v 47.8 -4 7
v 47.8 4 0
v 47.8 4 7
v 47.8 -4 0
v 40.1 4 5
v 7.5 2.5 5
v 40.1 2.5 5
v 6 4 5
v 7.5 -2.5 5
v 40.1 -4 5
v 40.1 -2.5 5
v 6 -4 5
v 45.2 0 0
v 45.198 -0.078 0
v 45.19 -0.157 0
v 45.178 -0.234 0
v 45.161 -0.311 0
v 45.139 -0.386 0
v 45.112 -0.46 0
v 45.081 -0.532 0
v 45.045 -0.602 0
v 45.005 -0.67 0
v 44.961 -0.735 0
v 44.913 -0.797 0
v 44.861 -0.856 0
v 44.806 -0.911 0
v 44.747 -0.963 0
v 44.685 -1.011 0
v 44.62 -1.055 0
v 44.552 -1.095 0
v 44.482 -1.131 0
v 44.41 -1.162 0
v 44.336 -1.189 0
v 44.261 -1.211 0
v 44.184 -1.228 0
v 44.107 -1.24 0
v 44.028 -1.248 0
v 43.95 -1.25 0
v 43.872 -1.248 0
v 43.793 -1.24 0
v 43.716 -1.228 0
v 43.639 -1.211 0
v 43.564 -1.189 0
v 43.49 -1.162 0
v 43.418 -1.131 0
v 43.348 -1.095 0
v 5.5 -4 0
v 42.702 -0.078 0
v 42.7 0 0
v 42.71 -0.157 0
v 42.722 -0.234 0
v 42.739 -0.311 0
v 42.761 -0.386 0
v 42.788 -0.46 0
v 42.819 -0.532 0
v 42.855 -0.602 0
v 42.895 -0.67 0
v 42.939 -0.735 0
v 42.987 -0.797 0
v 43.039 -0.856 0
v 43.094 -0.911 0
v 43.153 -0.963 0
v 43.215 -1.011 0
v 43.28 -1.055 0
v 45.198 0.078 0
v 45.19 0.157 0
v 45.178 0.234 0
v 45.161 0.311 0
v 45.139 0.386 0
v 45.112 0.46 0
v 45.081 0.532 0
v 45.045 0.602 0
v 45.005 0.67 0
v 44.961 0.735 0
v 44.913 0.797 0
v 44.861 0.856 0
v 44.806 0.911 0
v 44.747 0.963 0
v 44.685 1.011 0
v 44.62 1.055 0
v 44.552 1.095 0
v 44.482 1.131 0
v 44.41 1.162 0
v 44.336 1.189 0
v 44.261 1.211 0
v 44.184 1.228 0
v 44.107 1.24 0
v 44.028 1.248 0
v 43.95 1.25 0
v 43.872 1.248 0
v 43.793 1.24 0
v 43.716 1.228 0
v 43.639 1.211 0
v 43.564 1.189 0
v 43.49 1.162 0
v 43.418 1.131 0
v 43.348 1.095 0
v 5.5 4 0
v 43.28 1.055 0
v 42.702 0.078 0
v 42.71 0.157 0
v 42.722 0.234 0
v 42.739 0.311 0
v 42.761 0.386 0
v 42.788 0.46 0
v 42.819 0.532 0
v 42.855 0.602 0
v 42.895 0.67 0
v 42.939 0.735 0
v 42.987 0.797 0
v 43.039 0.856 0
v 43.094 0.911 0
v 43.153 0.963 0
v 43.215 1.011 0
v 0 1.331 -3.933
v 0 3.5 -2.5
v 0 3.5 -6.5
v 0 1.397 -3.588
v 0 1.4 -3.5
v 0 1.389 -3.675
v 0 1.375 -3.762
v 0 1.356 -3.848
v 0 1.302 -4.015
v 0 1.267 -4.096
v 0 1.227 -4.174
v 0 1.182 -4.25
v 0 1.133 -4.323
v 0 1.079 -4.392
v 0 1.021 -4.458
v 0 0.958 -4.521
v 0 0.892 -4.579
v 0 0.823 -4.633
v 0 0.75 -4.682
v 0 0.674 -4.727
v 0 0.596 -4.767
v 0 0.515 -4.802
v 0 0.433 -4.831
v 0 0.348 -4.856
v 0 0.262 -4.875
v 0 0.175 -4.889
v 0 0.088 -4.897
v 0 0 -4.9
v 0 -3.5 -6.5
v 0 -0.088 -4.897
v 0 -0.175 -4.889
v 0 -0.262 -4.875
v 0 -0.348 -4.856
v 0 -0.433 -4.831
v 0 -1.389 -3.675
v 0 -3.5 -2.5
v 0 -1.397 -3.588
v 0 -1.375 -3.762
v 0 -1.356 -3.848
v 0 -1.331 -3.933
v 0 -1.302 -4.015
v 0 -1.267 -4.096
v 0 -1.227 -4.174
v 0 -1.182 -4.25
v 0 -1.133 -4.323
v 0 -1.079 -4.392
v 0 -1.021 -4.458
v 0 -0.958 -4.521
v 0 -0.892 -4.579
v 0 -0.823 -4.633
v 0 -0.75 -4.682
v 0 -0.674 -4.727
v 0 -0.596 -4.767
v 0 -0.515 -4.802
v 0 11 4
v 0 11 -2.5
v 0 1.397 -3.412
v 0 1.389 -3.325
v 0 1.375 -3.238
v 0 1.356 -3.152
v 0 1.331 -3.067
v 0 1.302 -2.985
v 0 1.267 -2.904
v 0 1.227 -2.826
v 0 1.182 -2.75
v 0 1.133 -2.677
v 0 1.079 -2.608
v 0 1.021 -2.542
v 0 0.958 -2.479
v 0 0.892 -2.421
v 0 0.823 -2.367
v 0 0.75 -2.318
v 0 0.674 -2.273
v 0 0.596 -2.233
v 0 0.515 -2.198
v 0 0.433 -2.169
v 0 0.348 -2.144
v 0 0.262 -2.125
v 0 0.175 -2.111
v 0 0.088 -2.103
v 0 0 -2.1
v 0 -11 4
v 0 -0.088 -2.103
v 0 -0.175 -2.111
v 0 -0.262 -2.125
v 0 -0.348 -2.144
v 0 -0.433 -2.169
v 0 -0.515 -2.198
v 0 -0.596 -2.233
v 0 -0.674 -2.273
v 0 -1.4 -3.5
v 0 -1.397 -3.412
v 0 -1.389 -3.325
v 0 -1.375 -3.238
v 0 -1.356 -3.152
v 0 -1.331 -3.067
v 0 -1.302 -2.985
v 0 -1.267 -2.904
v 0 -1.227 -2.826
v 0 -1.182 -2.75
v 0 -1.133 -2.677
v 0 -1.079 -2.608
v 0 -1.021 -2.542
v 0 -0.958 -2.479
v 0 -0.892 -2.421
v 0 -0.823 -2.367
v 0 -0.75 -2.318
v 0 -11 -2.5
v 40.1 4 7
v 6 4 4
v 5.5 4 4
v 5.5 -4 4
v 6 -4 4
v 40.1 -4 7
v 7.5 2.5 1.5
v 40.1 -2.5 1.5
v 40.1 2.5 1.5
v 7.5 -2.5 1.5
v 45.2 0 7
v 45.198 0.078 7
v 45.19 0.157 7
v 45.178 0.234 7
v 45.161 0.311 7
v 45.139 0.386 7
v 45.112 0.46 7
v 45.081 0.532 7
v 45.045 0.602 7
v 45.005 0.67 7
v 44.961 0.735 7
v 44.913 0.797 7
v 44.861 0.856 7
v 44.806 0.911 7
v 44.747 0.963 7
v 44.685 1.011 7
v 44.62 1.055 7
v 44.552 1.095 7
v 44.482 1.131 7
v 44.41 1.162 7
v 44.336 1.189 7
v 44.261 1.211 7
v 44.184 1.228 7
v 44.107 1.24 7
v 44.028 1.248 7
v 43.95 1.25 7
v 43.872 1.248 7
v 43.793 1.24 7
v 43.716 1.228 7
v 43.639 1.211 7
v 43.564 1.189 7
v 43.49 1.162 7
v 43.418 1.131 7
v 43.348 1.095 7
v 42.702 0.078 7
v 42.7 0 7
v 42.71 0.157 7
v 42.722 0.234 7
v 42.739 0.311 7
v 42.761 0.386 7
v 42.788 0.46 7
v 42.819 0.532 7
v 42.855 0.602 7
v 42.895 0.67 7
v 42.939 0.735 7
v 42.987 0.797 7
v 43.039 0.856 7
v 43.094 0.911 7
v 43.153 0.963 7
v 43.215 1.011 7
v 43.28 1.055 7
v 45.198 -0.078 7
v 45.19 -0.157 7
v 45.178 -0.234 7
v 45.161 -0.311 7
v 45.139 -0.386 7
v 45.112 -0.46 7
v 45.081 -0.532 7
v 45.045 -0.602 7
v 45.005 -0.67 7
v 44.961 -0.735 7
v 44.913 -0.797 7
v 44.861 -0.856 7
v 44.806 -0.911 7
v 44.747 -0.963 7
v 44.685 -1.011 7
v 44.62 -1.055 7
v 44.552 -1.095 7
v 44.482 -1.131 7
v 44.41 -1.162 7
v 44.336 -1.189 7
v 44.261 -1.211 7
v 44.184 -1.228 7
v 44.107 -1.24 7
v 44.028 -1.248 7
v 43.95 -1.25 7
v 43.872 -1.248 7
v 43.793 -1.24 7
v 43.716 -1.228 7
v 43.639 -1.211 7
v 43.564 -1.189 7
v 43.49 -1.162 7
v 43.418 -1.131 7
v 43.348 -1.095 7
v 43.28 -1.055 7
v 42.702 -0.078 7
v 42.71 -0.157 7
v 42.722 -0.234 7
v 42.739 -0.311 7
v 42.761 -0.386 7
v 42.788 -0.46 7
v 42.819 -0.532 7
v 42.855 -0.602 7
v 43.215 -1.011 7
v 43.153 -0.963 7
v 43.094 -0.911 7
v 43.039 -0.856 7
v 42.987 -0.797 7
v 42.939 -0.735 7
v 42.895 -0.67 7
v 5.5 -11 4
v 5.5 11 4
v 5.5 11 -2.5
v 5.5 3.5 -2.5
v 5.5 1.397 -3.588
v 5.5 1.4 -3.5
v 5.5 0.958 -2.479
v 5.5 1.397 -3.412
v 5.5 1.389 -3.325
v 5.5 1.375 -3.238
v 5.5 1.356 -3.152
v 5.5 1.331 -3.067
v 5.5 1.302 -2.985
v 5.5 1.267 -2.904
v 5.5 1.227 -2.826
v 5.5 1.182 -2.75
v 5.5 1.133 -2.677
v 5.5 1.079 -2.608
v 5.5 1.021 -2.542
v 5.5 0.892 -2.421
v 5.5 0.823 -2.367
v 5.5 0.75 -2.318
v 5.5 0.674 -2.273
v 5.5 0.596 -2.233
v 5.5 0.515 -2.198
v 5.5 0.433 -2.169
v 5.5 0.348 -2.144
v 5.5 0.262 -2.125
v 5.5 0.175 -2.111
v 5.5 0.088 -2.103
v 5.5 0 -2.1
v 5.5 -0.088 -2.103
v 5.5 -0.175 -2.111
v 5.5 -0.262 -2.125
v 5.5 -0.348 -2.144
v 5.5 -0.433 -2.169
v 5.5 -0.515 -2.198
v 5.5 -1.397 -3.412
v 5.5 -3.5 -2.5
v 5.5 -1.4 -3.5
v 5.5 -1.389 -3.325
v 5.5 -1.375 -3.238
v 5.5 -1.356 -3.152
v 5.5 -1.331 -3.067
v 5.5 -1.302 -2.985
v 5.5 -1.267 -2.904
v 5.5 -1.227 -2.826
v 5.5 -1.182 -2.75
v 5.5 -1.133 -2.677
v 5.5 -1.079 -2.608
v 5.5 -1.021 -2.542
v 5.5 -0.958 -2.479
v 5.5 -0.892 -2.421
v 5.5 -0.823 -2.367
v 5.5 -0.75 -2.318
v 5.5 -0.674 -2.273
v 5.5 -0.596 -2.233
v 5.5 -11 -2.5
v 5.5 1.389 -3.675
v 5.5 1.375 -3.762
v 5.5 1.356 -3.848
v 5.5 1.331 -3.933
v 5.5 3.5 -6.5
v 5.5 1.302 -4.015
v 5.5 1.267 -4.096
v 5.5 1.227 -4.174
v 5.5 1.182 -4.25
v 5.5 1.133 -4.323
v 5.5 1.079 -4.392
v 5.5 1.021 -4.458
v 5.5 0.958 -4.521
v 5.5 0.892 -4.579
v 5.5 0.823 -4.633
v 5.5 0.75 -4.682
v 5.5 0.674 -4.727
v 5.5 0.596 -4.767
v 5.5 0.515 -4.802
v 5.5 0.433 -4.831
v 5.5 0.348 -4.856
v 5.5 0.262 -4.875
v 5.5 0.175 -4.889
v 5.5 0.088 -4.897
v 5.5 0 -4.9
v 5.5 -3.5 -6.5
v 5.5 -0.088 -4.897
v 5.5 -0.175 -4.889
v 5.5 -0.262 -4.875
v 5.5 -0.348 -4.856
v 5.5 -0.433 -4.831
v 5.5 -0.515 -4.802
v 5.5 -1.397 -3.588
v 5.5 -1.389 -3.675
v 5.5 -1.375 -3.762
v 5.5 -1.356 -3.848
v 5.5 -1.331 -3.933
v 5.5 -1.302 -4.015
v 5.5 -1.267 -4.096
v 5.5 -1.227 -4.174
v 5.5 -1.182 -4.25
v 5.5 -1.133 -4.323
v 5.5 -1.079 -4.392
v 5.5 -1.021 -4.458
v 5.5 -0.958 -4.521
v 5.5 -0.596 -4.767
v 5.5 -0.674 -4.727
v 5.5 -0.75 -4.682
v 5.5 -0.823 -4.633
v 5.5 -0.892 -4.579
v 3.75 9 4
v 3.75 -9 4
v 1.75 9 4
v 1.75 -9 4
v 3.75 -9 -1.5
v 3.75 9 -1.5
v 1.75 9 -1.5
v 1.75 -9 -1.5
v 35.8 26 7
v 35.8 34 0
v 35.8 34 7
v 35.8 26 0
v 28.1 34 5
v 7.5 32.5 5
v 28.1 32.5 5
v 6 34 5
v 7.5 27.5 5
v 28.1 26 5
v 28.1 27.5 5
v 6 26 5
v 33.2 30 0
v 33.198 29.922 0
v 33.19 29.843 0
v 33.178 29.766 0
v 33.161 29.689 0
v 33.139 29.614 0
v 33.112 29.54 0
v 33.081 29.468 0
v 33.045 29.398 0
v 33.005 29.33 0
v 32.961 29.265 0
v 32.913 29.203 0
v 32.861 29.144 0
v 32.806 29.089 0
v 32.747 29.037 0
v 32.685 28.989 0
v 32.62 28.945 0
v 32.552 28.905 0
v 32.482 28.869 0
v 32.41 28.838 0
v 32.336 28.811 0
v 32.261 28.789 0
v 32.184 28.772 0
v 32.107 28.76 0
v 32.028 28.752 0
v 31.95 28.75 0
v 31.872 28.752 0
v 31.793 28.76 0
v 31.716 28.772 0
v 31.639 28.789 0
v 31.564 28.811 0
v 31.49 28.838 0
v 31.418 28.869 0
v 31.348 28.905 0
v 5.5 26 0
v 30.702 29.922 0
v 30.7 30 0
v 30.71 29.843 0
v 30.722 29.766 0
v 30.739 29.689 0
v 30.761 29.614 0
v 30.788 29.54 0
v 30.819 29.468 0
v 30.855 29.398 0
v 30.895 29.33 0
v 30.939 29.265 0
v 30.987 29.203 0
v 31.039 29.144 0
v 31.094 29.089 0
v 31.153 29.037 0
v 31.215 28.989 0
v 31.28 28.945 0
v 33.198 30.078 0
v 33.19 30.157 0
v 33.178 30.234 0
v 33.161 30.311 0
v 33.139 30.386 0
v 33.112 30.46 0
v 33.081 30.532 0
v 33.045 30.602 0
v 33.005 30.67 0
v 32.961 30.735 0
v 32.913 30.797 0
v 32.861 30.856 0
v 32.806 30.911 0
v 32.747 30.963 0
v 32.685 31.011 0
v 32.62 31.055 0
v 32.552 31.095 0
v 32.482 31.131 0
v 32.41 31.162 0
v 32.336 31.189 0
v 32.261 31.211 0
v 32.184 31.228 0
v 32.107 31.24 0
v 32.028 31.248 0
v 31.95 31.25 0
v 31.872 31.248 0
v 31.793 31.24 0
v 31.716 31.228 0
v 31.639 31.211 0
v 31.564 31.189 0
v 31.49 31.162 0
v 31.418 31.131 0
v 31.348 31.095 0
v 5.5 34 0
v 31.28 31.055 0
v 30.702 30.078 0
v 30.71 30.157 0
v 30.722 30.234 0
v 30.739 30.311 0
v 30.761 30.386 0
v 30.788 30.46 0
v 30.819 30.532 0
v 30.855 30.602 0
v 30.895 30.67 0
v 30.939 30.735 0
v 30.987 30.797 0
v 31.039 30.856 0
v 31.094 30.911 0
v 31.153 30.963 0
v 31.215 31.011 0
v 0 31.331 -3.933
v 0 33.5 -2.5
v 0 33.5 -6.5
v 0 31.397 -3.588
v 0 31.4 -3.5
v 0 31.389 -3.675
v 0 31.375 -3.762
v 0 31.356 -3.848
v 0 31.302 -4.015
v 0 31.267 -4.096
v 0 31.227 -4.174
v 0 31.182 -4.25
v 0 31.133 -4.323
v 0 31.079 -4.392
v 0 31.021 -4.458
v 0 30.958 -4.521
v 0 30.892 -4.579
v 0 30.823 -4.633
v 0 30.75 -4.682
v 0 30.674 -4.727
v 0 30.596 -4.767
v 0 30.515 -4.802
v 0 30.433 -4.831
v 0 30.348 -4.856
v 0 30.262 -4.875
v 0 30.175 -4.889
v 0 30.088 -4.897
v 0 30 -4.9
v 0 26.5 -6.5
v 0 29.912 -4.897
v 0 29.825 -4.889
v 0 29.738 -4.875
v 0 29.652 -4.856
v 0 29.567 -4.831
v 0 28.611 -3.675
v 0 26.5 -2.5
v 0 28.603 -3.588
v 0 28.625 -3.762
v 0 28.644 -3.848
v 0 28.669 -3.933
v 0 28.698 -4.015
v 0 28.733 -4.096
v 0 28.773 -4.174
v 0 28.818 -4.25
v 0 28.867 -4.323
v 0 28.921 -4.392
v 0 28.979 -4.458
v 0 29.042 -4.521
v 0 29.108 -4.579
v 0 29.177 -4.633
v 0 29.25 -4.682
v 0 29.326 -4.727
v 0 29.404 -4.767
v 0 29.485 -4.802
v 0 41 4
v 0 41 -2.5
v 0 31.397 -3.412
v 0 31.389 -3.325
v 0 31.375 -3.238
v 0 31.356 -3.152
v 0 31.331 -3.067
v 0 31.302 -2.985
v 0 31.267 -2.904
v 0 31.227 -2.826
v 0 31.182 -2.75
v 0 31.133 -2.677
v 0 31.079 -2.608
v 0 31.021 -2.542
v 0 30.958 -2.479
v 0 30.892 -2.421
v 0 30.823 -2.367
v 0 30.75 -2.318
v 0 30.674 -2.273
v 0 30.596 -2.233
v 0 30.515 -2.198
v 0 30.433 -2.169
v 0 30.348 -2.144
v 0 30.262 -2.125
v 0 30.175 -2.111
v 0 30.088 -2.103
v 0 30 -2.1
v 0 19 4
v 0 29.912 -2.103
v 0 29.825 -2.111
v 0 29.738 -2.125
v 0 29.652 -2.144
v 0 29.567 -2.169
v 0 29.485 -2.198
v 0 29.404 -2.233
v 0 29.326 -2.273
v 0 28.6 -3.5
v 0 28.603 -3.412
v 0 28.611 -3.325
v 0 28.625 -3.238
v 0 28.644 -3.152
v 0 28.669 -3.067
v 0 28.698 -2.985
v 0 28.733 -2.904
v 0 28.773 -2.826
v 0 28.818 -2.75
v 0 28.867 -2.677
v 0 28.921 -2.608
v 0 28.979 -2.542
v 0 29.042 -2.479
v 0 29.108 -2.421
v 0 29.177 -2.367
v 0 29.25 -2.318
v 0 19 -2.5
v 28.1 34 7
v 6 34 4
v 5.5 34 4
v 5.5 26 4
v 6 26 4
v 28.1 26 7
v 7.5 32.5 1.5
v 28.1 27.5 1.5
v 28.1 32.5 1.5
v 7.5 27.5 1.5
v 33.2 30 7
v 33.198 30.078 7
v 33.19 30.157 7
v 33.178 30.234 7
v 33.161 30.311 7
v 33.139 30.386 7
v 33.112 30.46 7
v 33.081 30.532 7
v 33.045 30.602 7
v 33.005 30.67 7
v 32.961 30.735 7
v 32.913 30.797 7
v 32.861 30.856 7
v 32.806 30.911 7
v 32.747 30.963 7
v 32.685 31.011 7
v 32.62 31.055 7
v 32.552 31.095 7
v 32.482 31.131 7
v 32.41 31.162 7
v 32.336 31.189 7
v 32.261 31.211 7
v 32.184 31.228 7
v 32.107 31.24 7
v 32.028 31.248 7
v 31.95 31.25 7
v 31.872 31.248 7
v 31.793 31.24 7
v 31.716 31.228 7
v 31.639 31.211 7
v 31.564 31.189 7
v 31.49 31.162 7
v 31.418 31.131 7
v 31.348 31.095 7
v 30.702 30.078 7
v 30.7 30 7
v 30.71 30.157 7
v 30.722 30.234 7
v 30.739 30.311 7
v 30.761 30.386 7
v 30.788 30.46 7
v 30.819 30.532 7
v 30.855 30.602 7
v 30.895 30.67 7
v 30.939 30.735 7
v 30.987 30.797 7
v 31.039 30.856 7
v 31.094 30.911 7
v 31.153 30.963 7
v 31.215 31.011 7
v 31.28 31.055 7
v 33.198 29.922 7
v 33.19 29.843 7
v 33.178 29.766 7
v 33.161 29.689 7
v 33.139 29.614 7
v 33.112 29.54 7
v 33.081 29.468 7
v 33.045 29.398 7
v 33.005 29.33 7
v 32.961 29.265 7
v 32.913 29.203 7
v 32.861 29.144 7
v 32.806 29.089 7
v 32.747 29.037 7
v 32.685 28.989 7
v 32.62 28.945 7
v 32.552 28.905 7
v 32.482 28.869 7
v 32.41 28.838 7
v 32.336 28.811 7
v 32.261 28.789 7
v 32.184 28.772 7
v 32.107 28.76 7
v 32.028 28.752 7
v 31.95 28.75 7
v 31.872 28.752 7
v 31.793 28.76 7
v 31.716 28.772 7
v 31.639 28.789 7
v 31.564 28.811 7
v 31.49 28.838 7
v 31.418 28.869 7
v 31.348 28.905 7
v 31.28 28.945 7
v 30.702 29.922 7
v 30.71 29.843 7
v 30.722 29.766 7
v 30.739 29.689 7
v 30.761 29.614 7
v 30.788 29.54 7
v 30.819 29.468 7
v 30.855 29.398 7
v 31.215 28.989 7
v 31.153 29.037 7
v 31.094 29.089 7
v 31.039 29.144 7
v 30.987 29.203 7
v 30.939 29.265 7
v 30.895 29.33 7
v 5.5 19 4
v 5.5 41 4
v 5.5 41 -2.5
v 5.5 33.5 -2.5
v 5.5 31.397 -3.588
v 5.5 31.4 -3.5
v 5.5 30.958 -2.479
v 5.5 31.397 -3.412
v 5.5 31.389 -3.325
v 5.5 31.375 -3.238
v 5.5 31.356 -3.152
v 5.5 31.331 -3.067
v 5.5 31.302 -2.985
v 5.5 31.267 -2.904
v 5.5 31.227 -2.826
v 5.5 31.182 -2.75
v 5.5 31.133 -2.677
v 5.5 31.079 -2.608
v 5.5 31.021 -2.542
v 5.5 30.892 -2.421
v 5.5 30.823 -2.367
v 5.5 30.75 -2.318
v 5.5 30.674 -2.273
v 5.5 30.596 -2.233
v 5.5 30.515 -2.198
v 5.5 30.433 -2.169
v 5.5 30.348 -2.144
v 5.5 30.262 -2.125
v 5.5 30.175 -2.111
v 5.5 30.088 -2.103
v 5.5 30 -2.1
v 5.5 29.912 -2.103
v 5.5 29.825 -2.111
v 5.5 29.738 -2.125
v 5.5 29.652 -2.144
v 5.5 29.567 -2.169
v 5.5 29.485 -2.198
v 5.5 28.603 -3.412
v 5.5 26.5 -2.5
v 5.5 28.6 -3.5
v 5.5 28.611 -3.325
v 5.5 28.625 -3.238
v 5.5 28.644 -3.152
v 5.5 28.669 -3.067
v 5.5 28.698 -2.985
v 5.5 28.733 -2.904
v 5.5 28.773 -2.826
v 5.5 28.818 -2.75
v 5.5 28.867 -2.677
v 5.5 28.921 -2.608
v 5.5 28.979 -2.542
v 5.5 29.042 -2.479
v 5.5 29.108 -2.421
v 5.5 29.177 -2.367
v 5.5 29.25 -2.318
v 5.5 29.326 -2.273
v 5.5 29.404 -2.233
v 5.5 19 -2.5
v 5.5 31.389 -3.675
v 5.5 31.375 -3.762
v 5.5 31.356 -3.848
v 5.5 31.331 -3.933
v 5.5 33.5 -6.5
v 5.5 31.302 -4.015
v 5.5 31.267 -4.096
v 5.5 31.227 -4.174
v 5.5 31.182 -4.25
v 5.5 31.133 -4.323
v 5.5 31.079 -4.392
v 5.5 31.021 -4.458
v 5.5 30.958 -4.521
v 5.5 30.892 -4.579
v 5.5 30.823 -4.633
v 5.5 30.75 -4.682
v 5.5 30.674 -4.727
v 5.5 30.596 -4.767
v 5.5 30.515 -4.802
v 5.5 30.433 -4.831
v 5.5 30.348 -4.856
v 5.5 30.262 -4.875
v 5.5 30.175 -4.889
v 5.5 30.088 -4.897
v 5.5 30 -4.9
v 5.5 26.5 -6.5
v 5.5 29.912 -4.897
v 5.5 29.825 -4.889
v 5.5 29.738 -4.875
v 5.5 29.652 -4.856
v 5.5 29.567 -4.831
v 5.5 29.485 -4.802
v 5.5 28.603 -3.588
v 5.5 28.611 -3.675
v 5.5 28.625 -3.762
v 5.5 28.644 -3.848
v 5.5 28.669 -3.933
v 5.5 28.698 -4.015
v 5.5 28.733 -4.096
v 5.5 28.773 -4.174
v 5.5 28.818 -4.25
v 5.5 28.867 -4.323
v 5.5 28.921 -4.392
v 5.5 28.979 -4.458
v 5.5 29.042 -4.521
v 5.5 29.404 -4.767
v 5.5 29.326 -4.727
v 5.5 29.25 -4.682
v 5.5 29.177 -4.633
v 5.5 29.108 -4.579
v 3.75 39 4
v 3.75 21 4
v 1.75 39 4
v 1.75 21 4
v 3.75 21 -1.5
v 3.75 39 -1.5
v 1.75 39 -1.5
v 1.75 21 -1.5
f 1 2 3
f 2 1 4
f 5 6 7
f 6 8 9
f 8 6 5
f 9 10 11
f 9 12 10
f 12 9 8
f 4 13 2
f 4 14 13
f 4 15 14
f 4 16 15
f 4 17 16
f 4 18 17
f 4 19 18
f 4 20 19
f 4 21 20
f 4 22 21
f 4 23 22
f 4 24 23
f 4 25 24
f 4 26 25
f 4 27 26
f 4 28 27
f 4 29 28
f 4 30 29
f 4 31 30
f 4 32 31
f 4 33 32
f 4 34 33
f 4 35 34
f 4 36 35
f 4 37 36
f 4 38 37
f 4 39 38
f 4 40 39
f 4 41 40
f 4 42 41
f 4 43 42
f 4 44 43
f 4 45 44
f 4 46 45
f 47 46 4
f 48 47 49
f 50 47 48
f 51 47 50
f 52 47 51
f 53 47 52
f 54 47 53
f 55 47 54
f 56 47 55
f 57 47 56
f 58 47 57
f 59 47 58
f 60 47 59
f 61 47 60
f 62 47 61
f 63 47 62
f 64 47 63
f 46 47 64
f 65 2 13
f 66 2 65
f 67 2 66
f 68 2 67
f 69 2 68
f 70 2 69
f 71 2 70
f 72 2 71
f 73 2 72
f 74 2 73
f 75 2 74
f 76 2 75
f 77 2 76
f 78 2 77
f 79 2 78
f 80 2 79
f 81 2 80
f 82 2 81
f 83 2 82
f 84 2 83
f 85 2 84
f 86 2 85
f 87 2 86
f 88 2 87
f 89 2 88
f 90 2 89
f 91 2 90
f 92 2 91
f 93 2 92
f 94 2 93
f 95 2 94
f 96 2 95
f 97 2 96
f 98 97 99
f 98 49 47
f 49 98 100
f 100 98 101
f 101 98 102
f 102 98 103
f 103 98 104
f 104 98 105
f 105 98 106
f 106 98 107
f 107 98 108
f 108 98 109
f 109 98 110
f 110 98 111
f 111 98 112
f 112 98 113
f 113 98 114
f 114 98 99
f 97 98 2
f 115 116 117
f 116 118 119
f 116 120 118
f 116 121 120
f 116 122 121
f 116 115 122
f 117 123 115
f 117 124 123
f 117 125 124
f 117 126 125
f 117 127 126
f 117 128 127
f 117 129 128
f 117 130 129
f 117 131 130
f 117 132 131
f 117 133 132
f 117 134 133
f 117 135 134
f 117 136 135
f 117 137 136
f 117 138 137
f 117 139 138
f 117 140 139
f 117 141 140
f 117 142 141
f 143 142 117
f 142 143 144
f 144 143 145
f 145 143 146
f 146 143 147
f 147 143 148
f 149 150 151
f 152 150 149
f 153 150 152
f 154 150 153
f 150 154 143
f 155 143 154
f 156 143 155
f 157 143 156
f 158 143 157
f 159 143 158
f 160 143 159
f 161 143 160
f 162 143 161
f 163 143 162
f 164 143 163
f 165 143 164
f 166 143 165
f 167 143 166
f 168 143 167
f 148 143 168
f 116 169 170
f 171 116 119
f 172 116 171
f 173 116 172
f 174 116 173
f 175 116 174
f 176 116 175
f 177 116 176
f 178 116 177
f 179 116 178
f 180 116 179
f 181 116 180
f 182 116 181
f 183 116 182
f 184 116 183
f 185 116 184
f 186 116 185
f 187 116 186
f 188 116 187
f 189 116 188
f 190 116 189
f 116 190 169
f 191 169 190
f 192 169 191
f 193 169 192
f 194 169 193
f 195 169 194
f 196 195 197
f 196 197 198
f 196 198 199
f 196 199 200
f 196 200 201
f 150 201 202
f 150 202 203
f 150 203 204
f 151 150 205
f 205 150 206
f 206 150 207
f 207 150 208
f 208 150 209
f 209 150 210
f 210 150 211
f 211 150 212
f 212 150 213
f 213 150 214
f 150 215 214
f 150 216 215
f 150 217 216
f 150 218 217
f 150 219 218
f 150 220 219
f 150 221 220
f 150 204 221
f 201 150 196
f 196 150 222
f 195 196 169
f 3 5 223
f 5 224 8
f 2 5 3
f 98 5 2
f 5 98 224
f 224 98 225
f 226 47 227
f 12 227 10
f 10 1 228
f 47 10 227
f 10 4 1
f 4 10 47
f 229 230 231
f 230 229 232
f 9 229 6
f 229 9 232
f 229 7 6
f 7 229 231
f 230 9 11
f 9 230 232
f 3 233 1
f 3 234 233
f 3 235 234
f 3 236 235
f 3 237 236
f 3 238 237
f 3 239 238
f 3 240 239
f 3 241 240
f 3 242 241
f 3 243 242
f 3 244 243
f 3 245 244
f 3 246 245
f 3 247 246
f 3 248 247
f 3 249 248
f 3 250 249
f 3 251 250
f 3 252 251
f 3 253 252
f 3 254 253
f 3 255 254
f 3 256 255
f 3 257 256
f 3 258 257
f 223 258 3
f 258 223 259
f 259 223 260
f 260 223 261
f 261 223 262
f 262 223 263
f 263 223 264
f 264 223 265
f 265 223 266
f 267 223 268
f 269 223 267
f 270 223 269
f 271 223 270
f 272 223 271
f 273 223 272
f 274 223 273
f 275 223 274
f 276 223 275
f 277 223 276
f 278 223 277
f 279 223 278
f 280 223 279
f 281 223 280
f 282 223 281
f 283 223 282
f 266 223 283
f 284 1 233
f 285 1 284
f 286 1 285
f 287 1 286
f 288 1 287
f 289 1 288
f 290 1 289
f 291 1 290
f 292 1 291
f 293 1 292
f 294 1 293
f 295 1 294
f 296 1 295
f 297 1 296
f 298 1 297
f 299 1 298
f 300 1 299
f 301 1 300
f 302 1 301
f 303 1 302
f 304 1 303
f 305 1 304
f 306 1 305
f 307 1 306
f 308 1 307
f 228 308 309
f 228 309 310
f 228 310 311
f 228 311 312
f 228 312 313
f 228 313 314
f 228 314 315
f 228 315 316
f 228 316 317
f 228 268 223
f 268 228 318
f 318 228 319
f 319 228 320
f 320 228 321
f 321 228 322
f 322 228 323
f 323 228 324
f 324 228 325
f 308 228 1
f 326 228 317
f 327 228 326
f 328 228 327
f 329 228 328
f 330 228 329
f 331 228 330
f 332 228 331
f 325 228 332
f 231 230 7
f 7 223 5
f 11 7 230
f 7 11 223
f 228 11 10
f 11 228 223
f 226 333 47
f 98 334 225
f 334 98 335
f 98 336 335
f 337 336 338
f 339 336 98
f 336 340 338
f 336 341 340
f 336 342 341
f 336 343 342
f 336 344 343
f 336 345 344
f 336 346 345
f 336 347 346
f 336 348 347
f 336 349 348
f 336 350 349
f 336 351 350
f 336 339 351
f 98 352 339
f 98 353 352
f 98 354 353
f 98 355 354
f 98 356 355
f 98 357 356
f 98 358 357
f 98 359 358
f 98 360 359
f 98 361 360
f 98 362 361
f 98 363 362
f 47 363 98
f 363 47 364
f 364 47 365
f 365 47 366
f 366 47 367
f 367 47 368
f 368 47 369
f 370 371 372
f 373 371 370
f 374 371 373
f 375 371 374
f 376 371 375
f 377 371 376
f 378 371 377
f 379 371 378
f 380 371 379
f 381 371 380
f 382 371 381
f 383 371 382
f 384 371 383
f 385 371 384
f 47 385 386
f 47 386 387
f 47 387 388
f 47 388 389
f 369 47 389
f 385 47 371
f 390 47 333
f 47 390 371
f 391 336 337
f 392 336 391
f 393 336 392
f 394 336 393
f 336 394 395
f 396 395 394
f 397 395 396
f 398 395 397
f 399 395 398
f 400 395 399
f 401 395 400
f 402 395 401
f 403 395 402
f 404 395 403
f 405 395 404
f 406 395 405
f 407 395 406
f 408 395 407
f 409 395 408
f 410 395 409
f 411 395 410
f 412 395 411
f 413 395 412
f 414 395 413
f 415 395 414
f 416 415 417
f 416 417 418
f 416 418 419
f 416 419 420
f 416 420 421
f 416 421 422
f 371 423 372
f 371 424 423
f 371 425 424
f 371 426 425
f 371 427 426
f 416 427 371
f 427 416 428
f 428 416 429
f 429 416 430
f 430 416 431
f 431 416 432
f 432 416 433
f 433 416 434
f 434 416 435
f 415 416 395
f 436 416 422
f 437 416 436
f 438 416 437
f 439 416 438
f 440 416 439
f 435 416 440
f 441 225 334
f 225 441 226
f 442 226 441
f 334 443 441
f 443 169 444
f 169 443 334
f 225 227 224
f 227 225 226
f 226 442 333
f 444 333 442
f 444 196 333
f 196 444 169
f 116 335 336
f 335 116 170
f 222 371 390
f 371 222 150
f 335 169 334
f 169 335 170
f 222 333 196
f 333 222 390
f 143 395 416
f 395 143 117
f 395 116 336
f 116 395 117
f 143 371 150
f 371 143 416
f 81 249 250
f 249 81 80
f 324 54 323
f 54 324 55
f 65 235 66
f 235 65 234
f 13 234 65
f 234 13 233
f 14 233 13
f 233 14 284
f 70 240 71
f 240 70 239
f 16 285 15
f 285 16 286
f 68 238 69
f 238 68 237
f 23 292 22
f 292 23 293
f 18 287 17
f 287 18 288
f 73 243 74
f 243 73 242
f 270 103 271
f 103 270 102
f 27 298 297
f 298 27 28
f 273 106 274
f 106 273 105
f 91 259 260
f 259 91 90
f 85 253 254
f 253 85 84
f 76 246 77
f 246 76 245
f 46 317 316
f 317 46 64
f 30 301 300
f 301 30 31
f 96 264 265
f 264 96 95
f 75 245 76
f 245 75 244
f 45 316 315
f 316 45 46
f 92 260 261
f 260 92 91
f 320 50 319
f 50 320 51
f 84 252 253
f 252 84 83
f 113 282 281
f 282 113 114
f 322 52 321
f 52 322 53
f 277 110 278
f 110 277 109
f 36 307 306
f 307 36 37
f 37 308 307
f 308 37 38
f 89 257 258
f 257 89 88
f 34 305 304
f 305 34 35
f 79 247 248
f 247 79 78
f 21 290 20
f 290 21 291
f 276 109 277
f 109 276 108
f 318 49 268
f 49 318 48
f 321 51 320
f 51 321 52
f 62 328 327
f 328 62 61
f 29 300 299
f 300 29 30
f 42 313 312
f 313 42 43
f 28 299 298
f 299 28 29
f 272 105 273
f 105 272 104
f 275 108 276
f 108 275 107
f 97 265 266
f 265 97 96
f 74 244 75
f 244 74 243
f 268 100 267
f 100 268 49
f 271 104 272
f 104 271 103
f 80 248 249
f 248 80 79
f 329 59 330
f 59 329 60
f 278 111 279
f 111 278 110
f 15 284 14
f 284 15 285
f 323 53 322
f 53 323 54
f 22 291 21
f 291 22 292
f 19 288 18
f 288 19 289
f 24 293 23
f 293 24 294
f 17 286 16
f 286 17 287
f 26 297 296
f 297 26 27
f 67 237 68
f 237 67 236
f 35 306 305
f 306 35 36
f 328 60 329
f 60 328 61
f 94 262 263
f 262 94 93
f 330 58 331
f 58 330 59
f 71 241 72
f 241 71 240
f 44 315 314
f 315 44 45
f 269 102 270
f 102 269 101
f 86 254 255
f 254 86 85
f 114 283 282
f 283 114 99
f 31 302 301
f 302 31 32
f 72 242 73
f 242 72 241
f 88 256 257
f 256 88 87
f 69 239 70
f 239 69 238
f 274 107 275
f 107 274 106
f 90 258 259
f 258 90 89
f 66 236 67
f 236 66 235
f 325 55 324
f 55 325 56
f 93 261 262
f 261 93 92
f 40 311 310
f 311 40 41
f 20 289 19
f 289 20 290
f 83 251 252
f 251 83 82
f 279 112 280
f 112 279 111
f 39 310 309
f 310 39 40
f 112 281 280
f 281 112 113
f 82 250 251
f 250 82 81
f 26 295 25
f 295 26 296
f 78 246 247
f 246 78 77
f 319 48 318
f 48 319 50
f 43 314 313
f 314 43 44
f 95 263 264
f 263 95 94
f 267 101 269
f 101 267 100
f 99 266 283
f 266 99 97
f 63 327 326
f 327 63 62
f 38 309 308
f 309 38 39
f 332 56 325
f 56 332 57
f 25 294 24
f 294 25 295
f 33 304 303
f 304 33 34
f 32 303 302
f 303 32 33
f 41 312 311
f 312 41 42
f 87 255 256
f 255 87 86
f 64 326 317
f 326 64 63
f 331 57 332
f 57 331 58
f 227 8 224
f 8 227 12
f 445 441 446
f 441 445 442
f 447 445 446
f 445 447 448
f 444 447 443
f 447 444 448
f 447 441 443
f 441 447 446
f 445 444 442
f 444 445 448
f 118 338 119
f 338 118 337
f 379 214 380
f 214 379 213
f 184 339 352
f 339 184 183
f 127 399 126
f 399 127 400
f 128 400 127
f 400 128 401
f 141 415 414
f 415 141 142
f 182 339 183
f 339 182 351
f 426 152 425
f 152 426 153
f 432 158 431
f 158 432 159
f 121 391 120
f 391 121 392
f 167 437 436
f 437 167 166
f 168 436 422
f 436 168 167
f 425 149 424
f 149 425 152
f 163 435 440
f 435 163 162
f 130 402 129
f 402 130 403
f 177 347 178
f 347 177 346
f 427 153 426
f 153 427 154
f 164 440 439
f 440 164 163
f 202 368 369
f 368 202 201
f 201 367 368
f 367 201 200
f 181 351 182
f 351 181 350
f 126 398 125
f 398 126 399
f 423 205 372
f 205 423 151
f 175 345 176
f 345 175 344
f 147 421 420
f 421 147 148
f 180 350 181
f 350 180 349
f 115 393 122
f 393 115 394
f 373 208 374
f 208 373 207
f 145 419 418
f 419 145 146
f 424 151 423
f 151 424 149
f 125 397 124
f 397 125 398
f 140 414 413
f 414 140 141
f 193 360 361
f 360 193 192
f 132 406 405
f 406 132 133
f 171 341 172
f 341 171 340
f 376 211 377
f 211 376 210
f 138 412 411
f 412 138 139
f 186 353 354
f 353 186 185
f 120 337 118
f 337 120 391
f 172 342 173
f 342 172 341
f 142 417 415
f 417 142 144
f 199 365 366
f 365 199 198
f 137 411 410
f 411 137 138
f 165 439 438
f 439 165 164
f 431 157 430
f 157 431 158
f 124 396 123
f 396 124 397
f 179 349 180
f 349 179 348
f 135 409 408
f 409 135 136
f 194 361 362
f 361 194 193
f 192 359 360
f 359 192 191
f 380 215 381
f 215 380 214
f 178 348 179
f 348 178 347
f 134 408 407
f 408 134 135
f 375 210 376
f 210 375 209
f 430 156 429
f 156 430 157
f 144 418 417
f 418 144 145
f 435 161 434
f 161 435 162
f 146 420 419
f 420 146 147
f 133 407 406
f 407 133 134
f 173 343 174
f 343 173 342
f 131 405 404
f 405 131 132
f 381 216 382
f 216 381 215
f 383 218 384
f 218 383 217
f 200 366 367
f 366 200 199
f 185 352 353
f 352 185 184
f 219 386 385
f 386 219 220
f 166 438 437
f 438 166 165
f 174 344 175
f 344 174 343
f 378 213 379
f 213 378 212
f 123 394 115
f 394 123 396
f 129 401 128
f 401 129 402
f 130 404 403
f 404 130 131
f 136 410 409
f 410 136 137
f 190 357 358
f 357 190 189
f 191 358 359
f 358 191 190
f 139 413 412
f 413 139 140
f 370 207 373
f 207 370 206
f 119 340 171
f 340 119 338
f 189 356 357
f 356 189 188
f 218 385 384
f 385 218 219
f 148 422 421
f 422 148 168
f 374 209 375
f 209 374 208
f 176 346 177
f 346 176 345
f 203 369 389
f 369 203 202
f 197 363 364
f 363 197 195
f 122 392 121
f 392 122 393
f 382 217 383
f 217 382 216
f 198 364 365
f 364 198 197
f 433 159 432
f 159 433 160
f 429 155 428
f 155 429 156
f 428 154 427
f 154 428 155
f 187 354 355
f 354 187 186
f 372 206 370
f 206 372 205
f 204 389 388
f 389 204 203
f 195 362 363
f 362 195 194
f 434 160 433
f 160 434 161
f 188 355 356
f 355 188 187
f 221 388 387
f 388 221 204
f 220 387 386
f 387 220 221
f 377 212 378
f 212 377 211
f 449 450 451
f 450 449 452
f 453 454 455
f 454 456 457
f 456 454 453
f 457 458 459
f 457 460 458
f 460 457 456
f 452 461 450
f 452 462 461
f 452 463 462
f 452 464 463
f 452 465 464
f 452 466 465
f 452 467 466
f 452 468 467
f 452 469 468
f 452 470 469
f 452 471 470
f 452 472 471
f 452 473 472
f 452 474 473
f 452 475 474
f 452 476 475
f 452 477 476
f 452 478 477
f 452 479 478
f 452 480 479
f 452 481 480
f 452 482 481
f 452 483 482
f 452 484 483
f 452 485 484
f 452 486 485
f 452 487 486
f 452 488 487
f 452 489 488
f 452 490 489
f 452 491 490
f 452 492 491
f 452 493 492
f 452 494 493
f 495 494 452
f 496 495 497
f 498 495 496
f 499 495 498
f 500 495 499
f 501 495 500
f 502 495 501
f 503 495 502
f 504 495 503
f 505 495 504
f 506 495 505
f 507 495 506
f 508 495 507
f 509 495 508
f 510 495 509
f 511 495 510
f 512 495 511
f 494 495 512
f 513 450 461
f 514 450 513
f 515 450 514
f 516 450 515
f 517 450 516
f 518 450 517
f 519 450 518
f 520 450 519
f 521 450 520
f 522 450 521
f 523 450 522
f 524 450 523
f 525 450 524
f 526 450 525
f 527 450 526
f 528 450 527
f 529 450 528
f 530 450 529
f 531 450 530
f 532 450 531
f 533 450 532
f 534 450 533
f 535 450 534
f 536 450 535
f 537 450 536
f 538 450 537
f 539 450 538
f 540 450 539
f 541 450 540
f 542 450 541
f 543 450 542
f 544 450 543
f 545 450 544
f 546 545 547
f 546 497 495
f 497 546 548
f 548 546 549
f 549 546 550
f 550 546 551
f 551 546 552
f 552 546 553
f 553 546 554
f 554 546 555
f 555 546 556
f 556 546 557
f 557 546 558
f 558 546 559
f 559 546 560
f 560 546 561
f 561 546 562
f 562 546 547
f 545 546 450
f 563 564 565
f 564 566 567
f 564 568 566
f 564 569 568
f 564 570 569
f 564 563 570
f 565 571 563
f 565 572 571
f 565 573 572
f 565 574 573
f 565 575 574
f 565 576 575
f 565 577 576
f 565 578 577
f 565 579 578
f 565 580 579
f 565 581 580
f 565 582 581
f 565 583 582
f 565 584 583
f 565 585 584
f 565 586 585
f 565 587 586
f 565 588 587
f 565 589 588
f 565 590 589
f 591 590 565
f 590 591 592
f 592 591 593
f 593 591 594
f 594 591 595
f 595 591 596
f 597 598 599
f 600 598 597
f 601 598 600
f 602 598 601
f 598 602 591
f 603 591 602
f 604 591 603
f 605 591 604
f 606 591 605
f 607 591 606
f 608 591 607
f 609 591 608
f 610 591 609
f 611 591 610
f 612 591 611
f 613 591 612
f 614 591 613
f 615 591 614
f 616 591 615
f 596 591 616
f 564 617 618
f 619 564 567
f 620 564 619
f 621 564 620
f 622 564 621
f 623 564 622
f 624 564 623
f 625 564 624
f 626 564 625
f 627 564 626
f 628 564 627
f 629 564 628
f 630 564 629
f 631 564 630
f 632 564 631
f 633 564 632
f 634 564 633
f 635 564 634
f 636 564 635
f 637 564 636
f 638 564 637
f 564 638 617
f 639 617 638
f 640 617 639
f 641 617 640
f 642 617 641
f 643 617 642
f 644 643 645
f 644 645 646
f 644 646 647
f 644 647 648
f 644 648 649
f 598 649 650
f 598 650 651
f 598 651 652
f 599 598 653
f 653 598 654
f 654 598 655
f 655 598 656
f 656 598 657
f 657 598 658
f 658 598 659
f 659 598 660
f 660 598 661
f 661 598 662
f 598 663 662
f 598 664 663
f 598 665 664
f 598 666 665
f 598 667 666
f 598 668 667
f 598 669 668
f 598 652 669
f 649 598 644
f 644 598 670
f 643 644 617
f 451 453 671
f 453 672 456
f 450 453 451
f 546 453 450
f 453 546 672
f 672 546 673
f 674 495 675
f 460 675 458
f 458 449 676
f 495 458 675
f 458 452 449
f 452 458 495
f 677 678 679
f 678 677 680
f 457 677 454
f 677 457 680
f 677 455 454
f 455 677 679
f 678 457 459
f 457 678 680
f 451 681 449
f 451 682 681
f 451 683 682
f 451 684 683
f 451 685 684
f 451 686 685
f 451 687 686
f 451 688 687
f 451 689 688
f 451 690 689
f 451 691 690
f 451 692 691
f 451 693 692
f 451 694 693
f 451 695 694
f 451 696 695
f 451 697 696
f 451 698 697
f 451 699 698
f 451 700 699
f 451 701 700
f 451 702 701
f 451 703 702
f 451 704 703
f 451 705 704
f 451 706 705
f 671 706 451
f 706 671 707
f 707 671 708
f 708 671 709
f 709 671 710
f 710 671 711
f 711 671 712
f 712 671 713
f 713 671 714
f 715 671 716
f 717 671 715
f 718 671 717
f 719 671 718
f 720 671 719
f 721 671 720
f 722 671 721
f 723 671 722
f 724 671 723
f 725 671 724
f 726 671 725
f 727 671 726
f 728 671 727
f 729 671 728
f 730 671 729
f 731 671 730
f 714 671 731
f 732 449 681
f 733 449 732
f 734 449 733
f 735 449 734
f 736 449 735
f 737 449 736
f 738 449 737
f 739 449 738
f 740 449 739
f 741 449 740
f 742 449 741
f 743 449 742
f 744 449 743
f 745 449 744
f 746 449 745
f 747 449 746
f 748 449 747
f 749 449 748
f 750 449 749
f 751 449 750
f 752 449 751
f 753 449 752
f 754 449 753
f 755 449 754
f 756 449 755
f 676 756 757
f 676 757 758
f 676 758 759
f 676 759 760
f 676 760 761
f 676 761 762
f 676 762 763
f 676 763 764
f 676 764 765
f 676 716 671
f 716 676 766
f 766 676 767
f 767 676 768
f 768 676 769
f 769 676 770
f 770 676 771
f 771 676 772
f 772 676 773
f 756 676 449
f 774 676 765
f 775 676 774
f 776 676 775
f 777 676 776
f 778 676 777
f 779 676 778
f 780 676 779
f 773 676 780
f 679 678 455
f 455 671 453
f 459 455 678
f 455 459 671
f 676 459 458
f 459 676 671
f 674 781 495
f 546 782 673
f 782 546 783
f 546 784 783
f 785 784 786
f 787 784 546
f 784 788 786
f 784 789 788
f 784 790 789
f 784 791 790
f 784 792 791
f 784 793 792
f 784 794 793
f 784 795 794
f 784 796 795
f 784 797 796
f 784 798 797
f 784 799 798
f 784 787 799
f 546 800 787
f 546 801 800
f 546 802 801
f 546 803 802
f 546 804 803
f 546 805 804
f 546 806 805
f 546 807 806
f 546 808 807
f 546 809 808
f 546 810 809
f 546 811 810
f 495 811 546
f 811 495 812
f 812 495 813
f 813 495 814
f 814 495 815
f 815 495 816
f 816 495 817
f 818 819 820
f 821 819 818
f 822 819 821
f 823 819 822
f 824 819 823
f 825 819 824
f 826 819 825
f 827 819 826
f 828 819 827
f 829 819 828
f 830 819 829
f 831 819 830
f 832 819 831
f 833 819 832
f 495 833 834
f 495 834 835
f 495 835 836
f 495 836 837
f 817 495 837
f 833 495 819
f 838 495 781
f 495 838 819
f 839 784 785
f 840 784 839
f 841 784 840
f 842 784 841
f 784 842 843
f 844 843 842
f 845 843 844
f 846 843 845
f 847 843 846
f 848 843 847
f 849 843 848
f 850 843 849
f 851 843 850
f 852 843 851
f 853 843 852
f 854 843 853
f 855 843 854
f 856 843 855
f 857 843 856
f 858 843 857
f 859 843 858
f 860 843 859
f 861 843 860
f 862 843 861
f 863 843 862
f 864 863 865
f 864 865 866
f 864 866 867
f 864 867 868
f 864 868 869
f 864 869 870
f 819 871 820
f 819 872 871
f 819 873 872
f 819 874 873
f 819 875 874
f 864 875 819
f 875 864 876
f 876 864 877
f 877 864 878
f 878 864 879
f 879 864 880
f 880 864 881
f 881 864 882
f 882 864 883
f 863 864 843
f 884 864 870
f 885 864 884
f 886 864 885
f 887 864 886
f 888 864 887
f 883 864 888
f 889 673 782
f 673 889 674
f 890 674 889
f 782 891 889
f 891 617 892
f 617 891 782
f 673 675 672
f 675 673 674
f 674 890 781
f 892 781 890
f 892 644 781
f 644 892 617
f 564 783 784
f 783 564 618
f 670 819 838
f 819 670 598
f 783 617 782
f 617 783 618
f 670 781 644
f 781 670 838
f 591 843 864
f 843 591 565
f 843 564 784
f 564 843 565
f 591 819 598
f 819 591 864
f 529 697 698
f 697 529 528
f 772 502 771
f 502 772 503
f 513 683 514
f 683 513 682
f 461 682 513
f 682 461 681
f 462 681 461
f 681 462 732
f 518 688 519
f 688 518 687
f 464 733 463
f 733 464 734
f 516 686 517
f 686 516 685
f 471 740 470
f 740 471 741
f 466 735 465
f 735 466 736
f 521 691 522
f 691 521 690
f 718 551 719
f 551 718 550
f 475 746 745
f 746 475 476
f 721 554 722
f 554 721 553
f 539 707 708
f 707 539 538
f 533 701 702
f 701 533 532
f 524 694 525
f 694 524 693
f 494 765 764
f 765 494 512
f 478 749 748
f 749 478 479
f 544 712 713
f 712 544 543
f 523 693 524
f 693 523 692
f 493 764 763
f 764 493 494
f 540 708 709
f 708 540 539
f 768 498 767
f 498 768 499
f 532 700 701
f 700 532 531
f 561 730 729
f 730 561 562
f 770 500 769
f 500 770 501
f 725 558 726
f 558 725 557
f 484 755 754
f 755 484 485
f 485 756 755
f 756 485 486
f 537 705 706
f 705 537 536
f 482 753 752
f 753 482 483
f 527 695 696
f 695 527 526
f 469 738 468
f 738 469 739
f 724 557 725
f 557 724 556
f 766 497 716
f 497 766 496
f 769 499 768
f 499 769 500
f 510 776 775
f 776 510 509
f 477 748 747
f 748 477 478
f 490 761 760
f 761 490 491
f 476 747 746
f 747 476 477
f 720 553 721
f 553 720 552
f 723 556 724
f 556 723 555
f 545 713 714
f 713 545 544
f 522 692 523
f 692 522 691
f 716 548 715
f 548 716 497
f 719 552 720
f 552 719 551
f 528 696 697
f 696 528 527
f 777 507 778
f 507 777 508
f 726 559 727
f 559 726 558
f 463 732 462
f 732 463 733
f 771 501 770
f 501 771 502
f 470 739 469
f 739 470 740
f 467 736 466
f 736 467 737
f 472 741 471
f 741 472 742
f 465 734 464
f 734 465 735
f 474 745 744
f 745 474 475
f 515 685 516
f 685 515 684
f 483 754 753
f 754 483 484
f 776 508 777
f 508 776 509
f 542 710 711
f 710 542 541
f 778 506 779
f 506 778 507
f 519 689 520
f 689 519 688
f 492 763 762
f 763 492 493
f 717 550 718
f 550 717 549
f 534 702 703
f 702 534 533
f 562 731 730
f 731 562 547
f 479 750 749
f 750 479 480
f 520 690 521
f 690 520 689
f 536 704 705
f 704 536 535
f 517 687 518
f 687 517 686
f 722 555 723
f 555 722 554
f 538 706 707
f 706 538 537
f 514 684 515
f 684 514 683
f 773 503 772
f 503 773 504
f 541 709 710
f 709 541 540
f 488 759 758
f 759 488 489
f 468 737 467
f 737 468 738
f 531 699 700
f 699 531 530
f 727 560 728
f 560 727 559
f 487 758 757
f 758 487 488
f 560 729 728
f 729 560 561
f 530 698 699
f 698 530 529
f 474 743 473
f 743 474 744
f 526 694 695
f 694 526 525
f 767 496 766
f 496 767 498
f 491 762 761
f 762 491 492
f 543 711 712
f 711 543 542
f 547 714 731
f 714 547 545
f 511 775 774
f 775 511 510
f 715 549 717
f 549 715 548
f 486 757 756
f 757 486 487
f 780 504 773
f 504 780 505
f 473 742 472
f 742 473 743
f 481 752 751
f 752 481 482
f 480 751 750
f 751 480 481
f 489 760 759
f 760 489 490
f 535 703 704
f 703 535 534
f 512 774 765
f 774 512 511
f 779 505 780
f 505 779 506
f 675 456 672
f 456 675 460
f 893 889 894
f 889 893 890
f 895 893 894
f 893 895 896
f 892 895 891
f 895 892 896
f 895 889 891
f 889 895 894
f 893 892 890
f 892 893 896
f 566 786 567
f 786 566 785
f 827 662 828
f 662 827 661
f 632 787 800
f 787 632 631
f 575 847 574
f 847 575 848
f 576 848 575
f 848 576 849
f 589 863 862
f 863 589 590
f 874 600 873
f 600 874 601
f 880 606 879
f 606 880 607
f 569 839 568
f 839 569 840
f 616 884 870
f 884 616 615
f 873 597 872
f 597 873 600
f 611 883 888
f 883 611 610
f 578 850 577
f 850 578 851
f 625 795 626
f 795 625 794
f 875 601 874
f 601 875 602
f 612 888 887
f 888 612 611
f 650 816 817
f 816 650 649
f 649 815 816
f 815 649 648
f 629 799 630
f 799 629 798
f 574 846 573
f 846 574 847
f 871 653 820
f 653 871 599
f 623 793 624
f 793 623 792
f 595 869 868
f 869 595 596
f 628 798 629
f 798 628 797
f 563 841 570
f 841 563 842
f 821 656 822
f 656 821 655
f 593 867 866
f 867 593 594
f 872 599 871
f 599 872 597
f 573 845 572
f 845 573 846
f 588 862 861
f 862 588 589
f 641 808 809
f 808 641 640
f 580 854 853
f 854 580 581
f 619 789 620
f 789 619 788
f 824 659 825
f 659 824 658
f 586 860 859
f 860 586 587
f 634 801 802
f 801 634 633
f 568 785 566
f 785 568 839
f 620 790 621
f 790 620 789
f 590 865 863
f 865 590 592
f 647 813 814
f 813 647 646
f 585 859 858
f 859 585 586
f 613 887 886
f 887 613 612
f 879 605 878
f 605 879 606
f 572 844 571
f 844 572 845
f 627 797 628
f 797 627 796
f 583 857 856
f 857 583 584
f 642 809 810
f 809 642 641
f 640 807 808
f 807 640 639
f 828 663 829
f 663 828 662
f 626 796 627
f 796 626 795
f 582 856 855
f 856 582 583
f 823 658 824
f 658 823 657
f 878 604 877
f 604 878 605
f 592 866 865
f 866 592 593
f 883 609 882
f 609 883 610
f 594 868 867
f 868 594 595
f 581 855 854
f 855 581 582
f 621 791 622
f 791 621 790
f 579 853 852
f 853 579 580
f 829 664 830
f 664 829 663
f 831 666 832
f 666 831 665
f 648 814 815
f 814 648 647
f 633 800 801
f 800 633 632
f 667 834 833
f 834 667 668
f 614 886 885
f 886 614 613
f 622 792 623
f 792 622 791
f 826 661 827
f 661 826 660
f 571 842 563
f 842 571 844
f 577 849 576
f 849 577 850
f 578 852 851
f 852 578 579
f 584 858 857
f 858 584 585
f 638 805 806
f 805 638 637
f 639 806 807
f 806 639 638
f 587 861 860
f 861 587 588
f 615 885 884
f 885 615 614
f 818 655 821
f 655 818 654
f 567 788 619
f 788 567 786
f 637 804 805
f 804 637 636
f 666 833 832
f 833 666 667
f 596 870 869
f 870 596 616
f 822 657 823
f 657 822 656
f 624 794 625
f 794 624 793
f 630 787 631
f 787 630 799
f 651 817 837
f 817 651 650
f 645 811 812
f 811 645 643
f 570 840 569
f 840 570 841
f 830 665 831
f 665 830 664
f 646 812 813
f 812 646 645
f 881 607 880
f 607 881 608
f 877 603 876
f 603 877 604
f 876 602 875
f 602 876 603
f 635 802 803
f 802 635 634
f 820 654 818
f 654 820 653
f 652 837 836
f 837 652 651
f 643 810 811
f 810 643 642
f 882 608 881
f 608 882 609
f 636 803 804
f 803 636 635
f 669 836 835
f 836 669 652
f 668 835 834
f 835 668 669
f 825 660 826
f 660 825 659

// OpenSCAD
$fn = 100;

// 85.8


module beam(x) {
    difference() {
        union() {
            difference() {
                translate ([0, -4, 0]) {
                    cube([x + 5.8, 8, 5]);
                }
                translate ([7.5, -2.5, 1.5]) {
                    cube([100, 5, 5]);
                }
            }
            translate ([x - 1.9, -4, 0])
                cube([7.7, 8, 7]);
            translate ([0, -11, -2.5])
                cube([5.5, 22, 6.5]);
            translate ([0, -3.5, -6.5])
                cube([5.5, 7, 10.5]);
        }
        union() {
            translate([x + 1.95, 0, 3.5]) {
                cylinder(h = 20, r = 1.25, center = true);
            }
            translate ([-.5, -12, 4]) {
                cube([6.5, 24, 6]);
            }
            translate ([1.75, -9, -1.5]) {
                cube([2, 18, 10]);
            }
            // 7.5
            translate([0, 0, -3.5]) {
                rotate([0, 90, 0])
                cylinder(h = 20, r = 1.4, center = true);
            }
        }
    }
}

beam(42);

translate([0, 30, 0])
    beam(30);
